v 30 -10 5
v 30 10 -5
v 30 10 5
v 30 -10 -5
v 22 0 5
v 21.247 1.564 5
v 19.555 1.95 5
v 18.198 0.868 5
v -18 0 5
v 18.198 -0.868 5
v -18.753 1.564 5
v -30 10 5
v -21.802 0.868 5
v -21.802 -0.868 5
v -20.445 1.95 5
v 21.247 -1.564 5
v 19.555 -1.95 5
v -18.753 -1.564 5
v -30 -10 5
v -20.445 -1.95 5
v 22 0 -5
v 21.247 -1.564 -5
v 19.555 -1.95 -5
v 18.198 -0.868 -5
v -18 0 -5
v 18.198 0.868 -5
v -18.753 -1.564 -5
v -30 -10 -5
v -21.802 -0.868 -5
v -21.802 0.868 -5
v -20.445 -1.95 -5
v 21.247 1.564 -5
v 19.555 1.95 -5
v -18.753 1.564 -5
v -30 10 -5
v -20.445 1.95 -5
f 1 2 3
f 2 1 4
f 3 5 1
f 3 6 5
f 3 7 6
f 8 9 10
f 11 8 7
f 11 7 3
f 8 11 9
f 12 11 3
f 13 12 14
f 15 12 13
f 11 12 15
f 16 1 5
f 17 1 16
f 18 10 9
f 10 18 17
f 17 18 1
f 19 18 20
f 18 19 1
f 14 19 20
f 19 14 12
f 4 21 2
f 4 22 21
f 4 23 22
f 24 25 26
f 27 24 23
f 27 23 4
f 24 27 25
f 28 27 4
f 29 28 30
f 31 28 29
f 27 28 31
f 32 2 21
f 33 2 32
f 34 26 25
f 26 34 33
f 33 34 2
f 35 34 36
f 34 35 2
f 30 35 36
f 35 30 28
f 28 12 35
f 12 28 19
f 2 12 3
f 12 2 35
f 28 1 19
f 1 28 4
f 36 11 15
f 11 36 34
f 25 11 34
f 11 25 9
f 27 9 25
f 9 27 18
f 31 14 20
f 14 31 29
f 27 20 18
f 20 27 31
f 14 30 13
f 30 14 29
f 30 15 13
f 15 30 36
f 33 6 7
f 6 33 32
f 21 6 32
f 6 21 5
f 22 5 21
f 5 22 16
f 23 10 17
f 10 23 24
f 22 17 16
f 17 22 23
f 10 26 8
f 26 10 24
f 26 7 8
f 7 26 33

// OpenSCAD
module object_with_holes() {
    // Base cuboid
    difference() {
        // Main rectangular block
        translate([0, 0, 0])
            cube([60, 20, 10], center = true);

        // Holes
        translate([-20, 0, 0])
            cylinder(h=12, r=2, center=true);
        
        translate([20, 0, 0])
            cylinder(h=12, r=2, center=true);
    }
}

object_with_holes();
